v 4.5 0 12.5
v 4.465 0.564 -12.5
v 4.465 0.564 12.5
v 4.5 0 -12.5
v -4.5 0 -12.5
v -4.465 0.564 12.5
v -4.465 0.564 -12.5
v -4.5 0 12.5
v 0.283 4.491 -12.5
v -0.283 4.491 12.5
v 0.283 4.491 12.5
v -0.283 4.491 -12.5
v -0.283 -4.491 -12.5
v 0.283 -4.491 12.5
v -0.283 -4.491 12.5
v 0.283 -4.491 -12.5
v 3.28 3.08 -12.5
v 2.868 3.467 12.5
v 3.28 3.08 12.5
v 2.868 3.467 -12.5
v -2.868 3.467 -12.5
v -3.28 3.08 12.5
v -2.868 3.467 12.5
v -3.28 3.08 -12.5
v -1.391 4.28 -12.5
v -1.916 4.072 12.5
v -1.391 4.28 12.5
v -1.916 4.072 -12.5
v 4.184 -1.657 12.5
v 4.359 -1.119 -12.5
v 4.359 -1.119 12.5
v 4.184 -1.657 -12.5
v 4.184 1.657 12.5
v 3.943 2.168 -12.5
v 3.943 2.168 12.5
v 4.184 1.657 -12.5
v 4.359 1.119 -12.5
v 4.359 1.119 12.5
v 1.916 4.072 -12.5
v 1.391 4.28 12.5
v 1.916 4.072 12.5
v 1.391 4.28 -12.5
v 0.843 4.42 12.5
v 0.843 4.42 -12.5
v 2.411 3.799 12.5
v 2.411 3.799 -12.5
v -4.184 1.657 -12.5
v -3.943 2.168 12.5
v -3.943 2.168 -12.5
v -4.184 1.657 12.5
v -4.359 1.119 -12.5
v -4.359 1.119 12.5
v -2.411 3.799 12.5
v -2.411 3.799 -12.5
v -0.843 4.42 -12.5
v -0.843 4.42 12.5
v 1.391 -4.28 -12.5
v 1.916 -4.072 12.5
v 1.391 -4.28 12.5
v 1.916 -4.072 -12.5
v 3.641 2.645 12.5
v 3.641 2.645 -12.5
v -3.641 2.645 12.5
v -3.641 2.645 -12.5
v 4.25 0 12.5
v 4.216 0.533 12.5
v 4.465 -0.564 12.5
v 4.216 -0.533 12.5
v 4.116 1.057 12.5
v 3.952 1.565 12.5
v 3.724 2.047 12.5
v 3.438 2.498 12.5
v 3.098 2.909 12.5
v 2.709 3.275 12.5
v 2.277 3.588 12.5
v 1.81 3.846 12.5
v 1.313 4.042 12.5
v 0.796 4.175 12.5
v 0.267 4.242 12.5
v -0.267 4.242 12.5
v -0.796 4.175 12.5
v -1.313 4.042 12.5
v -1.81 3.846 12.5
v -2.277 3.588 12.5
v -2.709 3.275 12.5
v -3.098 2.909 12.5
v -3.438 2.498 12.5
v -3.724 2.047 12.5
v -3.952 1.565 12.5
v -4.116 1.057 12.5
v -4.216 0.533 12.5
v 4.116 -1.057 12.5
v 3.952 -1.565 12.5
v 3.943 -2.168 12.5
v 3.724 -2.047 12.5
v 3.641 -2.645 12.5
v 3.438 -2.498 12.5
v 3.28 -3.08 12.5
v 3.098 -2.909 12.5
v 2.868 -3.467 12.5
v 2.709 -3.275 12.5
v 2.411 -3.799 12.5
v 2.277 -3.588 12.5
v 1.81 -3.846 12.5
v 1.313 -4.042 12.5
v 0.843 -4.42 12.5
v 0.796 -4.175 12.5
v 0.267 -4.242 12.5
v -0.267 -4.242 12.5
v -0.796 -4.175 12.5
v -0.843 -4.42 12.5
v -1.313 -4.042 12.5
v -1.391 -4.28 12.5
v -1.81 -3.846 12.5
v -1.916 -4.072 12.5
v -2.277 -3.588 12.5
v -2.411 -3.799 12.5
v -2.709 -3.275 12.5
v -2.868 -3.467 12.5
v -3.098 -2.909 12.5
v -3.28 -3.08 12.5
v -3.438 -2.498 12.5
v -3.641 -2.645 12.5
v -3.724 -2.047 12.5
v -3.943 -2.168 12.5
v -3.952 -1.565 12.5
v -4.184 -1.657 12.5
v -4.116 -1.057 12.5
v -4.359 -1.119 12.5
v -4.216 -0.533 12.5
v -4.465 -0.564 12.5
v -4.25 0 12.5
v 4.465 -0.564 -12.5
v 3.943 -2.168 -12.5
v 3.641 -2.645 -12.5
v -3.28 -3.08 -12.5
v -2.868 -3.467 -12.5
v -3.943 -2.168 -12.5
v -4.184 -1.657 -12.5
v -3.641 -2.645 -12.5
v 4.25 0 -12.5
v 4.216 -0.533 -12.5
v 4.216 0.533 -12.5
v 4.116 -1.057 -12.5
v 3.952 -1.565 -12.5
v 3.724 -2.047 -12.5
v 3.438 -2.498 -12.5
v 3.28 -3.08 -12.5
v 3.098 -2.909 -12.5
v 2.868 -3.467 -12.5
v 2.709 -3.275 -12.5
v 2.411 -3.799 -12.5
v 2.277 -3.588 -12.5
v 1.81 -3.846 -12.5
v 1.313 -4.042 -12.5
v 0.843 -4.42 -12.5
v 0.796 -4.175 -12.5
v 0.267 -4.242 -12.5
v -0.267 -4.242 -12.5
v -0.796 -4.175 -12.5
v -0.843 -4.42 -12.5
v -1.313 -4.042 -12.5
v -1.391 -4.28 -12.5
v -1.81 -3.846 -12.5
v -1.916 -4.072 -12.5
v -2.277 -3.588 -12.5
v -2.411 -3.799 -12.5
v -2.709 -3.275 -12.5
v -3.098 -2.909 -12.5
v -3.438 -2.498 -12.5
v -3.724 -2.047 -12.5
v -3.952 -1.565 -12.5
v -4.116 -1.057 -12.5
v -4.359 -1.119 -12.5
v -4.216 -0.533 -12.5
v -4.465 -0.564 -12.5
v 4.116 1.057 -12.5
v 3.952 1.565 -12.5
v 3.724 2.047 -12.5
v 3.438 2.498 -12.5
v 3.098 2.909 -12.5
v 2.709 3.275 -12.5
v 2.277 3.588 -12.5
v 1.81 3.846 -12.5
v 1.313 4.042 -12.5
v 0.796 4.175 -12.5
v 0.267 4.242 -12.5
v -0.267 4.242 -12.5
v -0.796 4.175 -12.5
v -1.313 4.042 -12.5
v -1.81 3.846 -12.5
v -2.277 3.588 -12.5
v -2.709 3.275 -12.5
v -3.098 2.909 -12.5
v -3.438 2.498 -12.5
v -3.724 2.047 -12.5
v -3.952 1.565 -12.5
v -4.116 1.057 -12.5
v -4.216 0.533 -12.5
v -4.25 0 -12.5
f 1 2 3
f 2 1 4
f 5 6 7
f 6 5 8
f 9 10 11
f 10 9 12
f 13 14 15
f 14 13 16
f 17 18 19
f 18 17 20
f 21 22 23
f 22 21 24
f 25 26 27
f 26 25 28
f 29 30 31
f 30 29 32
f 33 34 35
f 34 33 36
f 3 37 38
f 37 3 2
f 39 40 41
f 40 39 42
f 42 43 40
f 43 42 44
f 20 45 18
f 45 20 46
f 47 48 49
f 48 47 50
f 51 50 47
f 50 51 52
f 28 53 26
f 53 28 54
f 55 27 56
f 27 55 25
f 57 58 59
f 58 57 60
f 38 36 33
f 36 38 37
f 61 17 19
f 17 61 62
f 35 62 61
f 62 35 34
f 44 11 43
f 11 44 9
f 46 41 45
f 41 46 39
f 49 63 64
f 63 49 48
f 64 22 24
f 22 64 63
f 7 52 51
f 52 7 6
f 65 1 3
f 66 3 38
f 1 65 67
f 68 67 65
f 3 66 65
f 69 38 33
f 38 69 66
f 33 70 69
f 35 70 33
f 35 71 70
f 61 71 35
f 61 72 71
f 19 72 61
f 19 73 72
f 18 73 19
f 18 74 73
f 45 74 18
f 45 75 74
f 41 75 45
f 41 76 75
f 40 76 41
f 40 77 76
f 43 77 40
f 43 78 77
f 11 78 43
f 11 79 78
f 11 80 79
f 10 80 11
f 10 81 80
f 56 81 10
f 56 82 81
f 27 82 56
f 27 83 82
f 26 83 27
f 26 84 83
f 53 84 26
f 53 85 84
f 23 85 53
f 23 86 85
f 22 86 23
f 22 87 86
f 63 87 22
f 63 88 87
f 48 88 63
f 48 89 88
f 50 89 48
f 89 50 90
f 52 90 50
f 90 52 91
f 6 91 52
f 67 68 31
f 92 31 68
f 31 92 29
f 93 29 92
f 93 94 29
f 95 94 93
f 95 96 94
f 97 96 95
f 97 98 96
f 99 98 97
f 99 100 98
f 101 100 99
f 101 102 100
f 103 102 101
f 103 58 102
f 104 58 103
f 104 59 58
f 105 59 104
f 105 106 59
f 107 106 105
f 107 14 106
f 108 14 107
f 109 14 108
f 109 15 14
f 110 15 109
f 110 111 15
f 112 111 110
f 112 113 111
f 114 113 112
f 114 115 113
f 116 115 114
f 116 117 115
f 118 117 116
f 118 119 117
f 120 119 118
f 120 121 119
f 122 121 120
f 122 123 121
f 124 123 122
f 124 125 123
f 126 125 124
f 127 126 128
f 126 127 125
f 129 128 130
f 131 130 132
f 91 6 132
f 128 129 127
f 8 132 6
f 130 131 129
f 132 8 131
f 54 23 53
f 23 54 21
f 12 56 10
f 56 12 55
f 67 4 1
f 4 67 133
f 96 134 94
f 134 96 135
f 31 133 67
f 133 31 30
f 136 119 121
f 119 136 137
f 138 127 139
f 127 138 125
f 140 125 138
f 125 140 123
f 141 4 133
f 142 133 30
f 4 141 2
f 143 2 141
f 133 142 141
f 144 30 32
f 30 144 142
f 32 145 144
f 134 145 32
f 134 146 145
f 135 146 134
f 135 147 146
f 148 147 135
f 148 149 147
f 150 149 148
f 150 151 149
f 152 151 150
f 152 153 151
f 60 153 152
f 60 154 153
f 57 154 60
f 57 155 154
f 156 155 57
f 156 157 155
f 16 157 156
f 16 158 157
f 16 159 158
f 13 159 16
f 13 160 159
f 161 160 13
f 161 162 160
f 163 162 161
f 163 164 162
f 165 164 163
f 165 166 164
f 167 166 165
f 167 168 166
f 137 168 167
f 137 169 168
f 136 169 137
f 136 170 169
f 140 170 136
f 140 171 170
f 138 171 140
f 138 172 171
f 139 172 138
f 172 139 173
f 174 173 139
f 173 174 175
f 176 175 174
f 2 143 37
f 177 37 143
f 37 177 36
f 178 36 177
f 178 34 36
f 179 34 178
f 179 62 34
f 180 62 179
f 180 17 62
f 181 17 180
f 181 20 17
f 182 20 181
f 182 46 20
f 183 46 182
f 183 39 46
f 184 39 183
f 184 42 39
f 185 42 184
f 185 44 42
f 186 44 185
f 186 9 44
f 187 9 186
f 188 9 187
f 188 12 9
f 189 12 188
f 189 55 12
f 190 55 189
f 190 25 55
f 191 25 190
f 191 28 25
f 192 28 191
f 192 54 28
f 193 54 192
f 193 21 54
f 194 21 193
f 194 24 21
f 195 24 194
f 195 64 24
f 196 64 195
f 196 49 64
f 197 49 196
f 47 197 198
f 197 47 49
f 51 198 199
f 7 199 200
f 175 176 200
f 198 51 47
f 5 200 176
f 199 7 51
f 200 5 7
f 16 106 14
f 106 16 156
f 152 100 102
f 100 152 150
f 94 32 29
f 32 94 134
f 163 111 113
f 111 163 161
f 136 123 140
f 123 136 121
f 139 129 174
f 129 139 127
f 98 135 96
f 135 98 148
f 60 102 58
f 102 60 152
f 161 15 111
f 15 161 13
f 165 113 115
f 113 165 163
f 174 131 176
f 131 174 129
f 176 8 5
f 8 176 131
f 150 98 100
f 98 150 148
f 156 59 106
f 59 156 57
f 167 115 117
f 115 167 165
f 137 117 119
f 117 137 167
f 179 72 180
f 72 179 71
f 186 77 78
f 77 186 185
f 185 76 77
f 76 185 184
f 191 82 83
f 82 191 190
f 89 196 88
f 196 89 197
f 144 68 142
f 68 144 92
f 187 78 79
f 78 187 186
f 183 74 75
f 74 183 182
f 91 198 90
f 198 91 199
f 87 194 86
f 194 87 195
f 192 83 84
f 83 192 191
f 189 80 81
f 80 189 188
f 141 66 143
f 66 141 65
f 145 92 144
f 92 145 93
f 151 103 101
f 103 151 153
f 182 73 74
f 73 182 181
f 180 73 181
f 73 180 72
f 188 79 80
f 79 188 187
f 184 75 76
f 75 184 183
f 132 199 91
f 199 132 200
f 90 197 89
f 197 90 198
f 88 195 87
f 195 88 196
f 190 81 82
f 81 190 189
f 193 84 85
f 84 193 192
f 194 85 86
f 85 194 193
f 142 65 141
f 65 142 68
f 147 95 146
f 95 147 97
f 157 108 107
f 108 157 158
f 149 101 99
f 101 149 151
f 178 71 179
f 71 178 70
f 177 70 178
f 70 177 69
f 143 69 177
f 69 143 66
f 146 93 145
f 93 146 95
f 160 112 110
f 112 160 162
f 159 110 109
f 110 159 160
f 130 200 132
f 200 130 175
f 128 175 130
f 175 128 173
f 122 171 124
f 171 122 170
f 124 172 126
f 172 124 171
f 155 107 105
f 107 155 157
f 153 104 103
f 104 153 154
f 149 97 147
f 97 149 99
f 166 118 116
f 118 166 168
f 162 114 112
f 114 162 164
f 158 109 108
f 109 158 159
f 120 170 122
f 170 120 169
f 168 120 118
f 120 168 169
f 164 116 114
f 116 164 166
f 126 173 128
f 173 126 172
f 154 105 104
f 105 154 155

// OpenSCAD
$fn = 50;


difference() {
	union() {
		translate(v = [0, 0, -12.5000000000]) {
			cylinder(h = 25, r = 4.5000000000);
		}
	}
	union() {
		translate(v = [0, 0, -100.0000000000]) {
			cylinder(h = 200, r = 4.2500000000);
		}
	}
}
